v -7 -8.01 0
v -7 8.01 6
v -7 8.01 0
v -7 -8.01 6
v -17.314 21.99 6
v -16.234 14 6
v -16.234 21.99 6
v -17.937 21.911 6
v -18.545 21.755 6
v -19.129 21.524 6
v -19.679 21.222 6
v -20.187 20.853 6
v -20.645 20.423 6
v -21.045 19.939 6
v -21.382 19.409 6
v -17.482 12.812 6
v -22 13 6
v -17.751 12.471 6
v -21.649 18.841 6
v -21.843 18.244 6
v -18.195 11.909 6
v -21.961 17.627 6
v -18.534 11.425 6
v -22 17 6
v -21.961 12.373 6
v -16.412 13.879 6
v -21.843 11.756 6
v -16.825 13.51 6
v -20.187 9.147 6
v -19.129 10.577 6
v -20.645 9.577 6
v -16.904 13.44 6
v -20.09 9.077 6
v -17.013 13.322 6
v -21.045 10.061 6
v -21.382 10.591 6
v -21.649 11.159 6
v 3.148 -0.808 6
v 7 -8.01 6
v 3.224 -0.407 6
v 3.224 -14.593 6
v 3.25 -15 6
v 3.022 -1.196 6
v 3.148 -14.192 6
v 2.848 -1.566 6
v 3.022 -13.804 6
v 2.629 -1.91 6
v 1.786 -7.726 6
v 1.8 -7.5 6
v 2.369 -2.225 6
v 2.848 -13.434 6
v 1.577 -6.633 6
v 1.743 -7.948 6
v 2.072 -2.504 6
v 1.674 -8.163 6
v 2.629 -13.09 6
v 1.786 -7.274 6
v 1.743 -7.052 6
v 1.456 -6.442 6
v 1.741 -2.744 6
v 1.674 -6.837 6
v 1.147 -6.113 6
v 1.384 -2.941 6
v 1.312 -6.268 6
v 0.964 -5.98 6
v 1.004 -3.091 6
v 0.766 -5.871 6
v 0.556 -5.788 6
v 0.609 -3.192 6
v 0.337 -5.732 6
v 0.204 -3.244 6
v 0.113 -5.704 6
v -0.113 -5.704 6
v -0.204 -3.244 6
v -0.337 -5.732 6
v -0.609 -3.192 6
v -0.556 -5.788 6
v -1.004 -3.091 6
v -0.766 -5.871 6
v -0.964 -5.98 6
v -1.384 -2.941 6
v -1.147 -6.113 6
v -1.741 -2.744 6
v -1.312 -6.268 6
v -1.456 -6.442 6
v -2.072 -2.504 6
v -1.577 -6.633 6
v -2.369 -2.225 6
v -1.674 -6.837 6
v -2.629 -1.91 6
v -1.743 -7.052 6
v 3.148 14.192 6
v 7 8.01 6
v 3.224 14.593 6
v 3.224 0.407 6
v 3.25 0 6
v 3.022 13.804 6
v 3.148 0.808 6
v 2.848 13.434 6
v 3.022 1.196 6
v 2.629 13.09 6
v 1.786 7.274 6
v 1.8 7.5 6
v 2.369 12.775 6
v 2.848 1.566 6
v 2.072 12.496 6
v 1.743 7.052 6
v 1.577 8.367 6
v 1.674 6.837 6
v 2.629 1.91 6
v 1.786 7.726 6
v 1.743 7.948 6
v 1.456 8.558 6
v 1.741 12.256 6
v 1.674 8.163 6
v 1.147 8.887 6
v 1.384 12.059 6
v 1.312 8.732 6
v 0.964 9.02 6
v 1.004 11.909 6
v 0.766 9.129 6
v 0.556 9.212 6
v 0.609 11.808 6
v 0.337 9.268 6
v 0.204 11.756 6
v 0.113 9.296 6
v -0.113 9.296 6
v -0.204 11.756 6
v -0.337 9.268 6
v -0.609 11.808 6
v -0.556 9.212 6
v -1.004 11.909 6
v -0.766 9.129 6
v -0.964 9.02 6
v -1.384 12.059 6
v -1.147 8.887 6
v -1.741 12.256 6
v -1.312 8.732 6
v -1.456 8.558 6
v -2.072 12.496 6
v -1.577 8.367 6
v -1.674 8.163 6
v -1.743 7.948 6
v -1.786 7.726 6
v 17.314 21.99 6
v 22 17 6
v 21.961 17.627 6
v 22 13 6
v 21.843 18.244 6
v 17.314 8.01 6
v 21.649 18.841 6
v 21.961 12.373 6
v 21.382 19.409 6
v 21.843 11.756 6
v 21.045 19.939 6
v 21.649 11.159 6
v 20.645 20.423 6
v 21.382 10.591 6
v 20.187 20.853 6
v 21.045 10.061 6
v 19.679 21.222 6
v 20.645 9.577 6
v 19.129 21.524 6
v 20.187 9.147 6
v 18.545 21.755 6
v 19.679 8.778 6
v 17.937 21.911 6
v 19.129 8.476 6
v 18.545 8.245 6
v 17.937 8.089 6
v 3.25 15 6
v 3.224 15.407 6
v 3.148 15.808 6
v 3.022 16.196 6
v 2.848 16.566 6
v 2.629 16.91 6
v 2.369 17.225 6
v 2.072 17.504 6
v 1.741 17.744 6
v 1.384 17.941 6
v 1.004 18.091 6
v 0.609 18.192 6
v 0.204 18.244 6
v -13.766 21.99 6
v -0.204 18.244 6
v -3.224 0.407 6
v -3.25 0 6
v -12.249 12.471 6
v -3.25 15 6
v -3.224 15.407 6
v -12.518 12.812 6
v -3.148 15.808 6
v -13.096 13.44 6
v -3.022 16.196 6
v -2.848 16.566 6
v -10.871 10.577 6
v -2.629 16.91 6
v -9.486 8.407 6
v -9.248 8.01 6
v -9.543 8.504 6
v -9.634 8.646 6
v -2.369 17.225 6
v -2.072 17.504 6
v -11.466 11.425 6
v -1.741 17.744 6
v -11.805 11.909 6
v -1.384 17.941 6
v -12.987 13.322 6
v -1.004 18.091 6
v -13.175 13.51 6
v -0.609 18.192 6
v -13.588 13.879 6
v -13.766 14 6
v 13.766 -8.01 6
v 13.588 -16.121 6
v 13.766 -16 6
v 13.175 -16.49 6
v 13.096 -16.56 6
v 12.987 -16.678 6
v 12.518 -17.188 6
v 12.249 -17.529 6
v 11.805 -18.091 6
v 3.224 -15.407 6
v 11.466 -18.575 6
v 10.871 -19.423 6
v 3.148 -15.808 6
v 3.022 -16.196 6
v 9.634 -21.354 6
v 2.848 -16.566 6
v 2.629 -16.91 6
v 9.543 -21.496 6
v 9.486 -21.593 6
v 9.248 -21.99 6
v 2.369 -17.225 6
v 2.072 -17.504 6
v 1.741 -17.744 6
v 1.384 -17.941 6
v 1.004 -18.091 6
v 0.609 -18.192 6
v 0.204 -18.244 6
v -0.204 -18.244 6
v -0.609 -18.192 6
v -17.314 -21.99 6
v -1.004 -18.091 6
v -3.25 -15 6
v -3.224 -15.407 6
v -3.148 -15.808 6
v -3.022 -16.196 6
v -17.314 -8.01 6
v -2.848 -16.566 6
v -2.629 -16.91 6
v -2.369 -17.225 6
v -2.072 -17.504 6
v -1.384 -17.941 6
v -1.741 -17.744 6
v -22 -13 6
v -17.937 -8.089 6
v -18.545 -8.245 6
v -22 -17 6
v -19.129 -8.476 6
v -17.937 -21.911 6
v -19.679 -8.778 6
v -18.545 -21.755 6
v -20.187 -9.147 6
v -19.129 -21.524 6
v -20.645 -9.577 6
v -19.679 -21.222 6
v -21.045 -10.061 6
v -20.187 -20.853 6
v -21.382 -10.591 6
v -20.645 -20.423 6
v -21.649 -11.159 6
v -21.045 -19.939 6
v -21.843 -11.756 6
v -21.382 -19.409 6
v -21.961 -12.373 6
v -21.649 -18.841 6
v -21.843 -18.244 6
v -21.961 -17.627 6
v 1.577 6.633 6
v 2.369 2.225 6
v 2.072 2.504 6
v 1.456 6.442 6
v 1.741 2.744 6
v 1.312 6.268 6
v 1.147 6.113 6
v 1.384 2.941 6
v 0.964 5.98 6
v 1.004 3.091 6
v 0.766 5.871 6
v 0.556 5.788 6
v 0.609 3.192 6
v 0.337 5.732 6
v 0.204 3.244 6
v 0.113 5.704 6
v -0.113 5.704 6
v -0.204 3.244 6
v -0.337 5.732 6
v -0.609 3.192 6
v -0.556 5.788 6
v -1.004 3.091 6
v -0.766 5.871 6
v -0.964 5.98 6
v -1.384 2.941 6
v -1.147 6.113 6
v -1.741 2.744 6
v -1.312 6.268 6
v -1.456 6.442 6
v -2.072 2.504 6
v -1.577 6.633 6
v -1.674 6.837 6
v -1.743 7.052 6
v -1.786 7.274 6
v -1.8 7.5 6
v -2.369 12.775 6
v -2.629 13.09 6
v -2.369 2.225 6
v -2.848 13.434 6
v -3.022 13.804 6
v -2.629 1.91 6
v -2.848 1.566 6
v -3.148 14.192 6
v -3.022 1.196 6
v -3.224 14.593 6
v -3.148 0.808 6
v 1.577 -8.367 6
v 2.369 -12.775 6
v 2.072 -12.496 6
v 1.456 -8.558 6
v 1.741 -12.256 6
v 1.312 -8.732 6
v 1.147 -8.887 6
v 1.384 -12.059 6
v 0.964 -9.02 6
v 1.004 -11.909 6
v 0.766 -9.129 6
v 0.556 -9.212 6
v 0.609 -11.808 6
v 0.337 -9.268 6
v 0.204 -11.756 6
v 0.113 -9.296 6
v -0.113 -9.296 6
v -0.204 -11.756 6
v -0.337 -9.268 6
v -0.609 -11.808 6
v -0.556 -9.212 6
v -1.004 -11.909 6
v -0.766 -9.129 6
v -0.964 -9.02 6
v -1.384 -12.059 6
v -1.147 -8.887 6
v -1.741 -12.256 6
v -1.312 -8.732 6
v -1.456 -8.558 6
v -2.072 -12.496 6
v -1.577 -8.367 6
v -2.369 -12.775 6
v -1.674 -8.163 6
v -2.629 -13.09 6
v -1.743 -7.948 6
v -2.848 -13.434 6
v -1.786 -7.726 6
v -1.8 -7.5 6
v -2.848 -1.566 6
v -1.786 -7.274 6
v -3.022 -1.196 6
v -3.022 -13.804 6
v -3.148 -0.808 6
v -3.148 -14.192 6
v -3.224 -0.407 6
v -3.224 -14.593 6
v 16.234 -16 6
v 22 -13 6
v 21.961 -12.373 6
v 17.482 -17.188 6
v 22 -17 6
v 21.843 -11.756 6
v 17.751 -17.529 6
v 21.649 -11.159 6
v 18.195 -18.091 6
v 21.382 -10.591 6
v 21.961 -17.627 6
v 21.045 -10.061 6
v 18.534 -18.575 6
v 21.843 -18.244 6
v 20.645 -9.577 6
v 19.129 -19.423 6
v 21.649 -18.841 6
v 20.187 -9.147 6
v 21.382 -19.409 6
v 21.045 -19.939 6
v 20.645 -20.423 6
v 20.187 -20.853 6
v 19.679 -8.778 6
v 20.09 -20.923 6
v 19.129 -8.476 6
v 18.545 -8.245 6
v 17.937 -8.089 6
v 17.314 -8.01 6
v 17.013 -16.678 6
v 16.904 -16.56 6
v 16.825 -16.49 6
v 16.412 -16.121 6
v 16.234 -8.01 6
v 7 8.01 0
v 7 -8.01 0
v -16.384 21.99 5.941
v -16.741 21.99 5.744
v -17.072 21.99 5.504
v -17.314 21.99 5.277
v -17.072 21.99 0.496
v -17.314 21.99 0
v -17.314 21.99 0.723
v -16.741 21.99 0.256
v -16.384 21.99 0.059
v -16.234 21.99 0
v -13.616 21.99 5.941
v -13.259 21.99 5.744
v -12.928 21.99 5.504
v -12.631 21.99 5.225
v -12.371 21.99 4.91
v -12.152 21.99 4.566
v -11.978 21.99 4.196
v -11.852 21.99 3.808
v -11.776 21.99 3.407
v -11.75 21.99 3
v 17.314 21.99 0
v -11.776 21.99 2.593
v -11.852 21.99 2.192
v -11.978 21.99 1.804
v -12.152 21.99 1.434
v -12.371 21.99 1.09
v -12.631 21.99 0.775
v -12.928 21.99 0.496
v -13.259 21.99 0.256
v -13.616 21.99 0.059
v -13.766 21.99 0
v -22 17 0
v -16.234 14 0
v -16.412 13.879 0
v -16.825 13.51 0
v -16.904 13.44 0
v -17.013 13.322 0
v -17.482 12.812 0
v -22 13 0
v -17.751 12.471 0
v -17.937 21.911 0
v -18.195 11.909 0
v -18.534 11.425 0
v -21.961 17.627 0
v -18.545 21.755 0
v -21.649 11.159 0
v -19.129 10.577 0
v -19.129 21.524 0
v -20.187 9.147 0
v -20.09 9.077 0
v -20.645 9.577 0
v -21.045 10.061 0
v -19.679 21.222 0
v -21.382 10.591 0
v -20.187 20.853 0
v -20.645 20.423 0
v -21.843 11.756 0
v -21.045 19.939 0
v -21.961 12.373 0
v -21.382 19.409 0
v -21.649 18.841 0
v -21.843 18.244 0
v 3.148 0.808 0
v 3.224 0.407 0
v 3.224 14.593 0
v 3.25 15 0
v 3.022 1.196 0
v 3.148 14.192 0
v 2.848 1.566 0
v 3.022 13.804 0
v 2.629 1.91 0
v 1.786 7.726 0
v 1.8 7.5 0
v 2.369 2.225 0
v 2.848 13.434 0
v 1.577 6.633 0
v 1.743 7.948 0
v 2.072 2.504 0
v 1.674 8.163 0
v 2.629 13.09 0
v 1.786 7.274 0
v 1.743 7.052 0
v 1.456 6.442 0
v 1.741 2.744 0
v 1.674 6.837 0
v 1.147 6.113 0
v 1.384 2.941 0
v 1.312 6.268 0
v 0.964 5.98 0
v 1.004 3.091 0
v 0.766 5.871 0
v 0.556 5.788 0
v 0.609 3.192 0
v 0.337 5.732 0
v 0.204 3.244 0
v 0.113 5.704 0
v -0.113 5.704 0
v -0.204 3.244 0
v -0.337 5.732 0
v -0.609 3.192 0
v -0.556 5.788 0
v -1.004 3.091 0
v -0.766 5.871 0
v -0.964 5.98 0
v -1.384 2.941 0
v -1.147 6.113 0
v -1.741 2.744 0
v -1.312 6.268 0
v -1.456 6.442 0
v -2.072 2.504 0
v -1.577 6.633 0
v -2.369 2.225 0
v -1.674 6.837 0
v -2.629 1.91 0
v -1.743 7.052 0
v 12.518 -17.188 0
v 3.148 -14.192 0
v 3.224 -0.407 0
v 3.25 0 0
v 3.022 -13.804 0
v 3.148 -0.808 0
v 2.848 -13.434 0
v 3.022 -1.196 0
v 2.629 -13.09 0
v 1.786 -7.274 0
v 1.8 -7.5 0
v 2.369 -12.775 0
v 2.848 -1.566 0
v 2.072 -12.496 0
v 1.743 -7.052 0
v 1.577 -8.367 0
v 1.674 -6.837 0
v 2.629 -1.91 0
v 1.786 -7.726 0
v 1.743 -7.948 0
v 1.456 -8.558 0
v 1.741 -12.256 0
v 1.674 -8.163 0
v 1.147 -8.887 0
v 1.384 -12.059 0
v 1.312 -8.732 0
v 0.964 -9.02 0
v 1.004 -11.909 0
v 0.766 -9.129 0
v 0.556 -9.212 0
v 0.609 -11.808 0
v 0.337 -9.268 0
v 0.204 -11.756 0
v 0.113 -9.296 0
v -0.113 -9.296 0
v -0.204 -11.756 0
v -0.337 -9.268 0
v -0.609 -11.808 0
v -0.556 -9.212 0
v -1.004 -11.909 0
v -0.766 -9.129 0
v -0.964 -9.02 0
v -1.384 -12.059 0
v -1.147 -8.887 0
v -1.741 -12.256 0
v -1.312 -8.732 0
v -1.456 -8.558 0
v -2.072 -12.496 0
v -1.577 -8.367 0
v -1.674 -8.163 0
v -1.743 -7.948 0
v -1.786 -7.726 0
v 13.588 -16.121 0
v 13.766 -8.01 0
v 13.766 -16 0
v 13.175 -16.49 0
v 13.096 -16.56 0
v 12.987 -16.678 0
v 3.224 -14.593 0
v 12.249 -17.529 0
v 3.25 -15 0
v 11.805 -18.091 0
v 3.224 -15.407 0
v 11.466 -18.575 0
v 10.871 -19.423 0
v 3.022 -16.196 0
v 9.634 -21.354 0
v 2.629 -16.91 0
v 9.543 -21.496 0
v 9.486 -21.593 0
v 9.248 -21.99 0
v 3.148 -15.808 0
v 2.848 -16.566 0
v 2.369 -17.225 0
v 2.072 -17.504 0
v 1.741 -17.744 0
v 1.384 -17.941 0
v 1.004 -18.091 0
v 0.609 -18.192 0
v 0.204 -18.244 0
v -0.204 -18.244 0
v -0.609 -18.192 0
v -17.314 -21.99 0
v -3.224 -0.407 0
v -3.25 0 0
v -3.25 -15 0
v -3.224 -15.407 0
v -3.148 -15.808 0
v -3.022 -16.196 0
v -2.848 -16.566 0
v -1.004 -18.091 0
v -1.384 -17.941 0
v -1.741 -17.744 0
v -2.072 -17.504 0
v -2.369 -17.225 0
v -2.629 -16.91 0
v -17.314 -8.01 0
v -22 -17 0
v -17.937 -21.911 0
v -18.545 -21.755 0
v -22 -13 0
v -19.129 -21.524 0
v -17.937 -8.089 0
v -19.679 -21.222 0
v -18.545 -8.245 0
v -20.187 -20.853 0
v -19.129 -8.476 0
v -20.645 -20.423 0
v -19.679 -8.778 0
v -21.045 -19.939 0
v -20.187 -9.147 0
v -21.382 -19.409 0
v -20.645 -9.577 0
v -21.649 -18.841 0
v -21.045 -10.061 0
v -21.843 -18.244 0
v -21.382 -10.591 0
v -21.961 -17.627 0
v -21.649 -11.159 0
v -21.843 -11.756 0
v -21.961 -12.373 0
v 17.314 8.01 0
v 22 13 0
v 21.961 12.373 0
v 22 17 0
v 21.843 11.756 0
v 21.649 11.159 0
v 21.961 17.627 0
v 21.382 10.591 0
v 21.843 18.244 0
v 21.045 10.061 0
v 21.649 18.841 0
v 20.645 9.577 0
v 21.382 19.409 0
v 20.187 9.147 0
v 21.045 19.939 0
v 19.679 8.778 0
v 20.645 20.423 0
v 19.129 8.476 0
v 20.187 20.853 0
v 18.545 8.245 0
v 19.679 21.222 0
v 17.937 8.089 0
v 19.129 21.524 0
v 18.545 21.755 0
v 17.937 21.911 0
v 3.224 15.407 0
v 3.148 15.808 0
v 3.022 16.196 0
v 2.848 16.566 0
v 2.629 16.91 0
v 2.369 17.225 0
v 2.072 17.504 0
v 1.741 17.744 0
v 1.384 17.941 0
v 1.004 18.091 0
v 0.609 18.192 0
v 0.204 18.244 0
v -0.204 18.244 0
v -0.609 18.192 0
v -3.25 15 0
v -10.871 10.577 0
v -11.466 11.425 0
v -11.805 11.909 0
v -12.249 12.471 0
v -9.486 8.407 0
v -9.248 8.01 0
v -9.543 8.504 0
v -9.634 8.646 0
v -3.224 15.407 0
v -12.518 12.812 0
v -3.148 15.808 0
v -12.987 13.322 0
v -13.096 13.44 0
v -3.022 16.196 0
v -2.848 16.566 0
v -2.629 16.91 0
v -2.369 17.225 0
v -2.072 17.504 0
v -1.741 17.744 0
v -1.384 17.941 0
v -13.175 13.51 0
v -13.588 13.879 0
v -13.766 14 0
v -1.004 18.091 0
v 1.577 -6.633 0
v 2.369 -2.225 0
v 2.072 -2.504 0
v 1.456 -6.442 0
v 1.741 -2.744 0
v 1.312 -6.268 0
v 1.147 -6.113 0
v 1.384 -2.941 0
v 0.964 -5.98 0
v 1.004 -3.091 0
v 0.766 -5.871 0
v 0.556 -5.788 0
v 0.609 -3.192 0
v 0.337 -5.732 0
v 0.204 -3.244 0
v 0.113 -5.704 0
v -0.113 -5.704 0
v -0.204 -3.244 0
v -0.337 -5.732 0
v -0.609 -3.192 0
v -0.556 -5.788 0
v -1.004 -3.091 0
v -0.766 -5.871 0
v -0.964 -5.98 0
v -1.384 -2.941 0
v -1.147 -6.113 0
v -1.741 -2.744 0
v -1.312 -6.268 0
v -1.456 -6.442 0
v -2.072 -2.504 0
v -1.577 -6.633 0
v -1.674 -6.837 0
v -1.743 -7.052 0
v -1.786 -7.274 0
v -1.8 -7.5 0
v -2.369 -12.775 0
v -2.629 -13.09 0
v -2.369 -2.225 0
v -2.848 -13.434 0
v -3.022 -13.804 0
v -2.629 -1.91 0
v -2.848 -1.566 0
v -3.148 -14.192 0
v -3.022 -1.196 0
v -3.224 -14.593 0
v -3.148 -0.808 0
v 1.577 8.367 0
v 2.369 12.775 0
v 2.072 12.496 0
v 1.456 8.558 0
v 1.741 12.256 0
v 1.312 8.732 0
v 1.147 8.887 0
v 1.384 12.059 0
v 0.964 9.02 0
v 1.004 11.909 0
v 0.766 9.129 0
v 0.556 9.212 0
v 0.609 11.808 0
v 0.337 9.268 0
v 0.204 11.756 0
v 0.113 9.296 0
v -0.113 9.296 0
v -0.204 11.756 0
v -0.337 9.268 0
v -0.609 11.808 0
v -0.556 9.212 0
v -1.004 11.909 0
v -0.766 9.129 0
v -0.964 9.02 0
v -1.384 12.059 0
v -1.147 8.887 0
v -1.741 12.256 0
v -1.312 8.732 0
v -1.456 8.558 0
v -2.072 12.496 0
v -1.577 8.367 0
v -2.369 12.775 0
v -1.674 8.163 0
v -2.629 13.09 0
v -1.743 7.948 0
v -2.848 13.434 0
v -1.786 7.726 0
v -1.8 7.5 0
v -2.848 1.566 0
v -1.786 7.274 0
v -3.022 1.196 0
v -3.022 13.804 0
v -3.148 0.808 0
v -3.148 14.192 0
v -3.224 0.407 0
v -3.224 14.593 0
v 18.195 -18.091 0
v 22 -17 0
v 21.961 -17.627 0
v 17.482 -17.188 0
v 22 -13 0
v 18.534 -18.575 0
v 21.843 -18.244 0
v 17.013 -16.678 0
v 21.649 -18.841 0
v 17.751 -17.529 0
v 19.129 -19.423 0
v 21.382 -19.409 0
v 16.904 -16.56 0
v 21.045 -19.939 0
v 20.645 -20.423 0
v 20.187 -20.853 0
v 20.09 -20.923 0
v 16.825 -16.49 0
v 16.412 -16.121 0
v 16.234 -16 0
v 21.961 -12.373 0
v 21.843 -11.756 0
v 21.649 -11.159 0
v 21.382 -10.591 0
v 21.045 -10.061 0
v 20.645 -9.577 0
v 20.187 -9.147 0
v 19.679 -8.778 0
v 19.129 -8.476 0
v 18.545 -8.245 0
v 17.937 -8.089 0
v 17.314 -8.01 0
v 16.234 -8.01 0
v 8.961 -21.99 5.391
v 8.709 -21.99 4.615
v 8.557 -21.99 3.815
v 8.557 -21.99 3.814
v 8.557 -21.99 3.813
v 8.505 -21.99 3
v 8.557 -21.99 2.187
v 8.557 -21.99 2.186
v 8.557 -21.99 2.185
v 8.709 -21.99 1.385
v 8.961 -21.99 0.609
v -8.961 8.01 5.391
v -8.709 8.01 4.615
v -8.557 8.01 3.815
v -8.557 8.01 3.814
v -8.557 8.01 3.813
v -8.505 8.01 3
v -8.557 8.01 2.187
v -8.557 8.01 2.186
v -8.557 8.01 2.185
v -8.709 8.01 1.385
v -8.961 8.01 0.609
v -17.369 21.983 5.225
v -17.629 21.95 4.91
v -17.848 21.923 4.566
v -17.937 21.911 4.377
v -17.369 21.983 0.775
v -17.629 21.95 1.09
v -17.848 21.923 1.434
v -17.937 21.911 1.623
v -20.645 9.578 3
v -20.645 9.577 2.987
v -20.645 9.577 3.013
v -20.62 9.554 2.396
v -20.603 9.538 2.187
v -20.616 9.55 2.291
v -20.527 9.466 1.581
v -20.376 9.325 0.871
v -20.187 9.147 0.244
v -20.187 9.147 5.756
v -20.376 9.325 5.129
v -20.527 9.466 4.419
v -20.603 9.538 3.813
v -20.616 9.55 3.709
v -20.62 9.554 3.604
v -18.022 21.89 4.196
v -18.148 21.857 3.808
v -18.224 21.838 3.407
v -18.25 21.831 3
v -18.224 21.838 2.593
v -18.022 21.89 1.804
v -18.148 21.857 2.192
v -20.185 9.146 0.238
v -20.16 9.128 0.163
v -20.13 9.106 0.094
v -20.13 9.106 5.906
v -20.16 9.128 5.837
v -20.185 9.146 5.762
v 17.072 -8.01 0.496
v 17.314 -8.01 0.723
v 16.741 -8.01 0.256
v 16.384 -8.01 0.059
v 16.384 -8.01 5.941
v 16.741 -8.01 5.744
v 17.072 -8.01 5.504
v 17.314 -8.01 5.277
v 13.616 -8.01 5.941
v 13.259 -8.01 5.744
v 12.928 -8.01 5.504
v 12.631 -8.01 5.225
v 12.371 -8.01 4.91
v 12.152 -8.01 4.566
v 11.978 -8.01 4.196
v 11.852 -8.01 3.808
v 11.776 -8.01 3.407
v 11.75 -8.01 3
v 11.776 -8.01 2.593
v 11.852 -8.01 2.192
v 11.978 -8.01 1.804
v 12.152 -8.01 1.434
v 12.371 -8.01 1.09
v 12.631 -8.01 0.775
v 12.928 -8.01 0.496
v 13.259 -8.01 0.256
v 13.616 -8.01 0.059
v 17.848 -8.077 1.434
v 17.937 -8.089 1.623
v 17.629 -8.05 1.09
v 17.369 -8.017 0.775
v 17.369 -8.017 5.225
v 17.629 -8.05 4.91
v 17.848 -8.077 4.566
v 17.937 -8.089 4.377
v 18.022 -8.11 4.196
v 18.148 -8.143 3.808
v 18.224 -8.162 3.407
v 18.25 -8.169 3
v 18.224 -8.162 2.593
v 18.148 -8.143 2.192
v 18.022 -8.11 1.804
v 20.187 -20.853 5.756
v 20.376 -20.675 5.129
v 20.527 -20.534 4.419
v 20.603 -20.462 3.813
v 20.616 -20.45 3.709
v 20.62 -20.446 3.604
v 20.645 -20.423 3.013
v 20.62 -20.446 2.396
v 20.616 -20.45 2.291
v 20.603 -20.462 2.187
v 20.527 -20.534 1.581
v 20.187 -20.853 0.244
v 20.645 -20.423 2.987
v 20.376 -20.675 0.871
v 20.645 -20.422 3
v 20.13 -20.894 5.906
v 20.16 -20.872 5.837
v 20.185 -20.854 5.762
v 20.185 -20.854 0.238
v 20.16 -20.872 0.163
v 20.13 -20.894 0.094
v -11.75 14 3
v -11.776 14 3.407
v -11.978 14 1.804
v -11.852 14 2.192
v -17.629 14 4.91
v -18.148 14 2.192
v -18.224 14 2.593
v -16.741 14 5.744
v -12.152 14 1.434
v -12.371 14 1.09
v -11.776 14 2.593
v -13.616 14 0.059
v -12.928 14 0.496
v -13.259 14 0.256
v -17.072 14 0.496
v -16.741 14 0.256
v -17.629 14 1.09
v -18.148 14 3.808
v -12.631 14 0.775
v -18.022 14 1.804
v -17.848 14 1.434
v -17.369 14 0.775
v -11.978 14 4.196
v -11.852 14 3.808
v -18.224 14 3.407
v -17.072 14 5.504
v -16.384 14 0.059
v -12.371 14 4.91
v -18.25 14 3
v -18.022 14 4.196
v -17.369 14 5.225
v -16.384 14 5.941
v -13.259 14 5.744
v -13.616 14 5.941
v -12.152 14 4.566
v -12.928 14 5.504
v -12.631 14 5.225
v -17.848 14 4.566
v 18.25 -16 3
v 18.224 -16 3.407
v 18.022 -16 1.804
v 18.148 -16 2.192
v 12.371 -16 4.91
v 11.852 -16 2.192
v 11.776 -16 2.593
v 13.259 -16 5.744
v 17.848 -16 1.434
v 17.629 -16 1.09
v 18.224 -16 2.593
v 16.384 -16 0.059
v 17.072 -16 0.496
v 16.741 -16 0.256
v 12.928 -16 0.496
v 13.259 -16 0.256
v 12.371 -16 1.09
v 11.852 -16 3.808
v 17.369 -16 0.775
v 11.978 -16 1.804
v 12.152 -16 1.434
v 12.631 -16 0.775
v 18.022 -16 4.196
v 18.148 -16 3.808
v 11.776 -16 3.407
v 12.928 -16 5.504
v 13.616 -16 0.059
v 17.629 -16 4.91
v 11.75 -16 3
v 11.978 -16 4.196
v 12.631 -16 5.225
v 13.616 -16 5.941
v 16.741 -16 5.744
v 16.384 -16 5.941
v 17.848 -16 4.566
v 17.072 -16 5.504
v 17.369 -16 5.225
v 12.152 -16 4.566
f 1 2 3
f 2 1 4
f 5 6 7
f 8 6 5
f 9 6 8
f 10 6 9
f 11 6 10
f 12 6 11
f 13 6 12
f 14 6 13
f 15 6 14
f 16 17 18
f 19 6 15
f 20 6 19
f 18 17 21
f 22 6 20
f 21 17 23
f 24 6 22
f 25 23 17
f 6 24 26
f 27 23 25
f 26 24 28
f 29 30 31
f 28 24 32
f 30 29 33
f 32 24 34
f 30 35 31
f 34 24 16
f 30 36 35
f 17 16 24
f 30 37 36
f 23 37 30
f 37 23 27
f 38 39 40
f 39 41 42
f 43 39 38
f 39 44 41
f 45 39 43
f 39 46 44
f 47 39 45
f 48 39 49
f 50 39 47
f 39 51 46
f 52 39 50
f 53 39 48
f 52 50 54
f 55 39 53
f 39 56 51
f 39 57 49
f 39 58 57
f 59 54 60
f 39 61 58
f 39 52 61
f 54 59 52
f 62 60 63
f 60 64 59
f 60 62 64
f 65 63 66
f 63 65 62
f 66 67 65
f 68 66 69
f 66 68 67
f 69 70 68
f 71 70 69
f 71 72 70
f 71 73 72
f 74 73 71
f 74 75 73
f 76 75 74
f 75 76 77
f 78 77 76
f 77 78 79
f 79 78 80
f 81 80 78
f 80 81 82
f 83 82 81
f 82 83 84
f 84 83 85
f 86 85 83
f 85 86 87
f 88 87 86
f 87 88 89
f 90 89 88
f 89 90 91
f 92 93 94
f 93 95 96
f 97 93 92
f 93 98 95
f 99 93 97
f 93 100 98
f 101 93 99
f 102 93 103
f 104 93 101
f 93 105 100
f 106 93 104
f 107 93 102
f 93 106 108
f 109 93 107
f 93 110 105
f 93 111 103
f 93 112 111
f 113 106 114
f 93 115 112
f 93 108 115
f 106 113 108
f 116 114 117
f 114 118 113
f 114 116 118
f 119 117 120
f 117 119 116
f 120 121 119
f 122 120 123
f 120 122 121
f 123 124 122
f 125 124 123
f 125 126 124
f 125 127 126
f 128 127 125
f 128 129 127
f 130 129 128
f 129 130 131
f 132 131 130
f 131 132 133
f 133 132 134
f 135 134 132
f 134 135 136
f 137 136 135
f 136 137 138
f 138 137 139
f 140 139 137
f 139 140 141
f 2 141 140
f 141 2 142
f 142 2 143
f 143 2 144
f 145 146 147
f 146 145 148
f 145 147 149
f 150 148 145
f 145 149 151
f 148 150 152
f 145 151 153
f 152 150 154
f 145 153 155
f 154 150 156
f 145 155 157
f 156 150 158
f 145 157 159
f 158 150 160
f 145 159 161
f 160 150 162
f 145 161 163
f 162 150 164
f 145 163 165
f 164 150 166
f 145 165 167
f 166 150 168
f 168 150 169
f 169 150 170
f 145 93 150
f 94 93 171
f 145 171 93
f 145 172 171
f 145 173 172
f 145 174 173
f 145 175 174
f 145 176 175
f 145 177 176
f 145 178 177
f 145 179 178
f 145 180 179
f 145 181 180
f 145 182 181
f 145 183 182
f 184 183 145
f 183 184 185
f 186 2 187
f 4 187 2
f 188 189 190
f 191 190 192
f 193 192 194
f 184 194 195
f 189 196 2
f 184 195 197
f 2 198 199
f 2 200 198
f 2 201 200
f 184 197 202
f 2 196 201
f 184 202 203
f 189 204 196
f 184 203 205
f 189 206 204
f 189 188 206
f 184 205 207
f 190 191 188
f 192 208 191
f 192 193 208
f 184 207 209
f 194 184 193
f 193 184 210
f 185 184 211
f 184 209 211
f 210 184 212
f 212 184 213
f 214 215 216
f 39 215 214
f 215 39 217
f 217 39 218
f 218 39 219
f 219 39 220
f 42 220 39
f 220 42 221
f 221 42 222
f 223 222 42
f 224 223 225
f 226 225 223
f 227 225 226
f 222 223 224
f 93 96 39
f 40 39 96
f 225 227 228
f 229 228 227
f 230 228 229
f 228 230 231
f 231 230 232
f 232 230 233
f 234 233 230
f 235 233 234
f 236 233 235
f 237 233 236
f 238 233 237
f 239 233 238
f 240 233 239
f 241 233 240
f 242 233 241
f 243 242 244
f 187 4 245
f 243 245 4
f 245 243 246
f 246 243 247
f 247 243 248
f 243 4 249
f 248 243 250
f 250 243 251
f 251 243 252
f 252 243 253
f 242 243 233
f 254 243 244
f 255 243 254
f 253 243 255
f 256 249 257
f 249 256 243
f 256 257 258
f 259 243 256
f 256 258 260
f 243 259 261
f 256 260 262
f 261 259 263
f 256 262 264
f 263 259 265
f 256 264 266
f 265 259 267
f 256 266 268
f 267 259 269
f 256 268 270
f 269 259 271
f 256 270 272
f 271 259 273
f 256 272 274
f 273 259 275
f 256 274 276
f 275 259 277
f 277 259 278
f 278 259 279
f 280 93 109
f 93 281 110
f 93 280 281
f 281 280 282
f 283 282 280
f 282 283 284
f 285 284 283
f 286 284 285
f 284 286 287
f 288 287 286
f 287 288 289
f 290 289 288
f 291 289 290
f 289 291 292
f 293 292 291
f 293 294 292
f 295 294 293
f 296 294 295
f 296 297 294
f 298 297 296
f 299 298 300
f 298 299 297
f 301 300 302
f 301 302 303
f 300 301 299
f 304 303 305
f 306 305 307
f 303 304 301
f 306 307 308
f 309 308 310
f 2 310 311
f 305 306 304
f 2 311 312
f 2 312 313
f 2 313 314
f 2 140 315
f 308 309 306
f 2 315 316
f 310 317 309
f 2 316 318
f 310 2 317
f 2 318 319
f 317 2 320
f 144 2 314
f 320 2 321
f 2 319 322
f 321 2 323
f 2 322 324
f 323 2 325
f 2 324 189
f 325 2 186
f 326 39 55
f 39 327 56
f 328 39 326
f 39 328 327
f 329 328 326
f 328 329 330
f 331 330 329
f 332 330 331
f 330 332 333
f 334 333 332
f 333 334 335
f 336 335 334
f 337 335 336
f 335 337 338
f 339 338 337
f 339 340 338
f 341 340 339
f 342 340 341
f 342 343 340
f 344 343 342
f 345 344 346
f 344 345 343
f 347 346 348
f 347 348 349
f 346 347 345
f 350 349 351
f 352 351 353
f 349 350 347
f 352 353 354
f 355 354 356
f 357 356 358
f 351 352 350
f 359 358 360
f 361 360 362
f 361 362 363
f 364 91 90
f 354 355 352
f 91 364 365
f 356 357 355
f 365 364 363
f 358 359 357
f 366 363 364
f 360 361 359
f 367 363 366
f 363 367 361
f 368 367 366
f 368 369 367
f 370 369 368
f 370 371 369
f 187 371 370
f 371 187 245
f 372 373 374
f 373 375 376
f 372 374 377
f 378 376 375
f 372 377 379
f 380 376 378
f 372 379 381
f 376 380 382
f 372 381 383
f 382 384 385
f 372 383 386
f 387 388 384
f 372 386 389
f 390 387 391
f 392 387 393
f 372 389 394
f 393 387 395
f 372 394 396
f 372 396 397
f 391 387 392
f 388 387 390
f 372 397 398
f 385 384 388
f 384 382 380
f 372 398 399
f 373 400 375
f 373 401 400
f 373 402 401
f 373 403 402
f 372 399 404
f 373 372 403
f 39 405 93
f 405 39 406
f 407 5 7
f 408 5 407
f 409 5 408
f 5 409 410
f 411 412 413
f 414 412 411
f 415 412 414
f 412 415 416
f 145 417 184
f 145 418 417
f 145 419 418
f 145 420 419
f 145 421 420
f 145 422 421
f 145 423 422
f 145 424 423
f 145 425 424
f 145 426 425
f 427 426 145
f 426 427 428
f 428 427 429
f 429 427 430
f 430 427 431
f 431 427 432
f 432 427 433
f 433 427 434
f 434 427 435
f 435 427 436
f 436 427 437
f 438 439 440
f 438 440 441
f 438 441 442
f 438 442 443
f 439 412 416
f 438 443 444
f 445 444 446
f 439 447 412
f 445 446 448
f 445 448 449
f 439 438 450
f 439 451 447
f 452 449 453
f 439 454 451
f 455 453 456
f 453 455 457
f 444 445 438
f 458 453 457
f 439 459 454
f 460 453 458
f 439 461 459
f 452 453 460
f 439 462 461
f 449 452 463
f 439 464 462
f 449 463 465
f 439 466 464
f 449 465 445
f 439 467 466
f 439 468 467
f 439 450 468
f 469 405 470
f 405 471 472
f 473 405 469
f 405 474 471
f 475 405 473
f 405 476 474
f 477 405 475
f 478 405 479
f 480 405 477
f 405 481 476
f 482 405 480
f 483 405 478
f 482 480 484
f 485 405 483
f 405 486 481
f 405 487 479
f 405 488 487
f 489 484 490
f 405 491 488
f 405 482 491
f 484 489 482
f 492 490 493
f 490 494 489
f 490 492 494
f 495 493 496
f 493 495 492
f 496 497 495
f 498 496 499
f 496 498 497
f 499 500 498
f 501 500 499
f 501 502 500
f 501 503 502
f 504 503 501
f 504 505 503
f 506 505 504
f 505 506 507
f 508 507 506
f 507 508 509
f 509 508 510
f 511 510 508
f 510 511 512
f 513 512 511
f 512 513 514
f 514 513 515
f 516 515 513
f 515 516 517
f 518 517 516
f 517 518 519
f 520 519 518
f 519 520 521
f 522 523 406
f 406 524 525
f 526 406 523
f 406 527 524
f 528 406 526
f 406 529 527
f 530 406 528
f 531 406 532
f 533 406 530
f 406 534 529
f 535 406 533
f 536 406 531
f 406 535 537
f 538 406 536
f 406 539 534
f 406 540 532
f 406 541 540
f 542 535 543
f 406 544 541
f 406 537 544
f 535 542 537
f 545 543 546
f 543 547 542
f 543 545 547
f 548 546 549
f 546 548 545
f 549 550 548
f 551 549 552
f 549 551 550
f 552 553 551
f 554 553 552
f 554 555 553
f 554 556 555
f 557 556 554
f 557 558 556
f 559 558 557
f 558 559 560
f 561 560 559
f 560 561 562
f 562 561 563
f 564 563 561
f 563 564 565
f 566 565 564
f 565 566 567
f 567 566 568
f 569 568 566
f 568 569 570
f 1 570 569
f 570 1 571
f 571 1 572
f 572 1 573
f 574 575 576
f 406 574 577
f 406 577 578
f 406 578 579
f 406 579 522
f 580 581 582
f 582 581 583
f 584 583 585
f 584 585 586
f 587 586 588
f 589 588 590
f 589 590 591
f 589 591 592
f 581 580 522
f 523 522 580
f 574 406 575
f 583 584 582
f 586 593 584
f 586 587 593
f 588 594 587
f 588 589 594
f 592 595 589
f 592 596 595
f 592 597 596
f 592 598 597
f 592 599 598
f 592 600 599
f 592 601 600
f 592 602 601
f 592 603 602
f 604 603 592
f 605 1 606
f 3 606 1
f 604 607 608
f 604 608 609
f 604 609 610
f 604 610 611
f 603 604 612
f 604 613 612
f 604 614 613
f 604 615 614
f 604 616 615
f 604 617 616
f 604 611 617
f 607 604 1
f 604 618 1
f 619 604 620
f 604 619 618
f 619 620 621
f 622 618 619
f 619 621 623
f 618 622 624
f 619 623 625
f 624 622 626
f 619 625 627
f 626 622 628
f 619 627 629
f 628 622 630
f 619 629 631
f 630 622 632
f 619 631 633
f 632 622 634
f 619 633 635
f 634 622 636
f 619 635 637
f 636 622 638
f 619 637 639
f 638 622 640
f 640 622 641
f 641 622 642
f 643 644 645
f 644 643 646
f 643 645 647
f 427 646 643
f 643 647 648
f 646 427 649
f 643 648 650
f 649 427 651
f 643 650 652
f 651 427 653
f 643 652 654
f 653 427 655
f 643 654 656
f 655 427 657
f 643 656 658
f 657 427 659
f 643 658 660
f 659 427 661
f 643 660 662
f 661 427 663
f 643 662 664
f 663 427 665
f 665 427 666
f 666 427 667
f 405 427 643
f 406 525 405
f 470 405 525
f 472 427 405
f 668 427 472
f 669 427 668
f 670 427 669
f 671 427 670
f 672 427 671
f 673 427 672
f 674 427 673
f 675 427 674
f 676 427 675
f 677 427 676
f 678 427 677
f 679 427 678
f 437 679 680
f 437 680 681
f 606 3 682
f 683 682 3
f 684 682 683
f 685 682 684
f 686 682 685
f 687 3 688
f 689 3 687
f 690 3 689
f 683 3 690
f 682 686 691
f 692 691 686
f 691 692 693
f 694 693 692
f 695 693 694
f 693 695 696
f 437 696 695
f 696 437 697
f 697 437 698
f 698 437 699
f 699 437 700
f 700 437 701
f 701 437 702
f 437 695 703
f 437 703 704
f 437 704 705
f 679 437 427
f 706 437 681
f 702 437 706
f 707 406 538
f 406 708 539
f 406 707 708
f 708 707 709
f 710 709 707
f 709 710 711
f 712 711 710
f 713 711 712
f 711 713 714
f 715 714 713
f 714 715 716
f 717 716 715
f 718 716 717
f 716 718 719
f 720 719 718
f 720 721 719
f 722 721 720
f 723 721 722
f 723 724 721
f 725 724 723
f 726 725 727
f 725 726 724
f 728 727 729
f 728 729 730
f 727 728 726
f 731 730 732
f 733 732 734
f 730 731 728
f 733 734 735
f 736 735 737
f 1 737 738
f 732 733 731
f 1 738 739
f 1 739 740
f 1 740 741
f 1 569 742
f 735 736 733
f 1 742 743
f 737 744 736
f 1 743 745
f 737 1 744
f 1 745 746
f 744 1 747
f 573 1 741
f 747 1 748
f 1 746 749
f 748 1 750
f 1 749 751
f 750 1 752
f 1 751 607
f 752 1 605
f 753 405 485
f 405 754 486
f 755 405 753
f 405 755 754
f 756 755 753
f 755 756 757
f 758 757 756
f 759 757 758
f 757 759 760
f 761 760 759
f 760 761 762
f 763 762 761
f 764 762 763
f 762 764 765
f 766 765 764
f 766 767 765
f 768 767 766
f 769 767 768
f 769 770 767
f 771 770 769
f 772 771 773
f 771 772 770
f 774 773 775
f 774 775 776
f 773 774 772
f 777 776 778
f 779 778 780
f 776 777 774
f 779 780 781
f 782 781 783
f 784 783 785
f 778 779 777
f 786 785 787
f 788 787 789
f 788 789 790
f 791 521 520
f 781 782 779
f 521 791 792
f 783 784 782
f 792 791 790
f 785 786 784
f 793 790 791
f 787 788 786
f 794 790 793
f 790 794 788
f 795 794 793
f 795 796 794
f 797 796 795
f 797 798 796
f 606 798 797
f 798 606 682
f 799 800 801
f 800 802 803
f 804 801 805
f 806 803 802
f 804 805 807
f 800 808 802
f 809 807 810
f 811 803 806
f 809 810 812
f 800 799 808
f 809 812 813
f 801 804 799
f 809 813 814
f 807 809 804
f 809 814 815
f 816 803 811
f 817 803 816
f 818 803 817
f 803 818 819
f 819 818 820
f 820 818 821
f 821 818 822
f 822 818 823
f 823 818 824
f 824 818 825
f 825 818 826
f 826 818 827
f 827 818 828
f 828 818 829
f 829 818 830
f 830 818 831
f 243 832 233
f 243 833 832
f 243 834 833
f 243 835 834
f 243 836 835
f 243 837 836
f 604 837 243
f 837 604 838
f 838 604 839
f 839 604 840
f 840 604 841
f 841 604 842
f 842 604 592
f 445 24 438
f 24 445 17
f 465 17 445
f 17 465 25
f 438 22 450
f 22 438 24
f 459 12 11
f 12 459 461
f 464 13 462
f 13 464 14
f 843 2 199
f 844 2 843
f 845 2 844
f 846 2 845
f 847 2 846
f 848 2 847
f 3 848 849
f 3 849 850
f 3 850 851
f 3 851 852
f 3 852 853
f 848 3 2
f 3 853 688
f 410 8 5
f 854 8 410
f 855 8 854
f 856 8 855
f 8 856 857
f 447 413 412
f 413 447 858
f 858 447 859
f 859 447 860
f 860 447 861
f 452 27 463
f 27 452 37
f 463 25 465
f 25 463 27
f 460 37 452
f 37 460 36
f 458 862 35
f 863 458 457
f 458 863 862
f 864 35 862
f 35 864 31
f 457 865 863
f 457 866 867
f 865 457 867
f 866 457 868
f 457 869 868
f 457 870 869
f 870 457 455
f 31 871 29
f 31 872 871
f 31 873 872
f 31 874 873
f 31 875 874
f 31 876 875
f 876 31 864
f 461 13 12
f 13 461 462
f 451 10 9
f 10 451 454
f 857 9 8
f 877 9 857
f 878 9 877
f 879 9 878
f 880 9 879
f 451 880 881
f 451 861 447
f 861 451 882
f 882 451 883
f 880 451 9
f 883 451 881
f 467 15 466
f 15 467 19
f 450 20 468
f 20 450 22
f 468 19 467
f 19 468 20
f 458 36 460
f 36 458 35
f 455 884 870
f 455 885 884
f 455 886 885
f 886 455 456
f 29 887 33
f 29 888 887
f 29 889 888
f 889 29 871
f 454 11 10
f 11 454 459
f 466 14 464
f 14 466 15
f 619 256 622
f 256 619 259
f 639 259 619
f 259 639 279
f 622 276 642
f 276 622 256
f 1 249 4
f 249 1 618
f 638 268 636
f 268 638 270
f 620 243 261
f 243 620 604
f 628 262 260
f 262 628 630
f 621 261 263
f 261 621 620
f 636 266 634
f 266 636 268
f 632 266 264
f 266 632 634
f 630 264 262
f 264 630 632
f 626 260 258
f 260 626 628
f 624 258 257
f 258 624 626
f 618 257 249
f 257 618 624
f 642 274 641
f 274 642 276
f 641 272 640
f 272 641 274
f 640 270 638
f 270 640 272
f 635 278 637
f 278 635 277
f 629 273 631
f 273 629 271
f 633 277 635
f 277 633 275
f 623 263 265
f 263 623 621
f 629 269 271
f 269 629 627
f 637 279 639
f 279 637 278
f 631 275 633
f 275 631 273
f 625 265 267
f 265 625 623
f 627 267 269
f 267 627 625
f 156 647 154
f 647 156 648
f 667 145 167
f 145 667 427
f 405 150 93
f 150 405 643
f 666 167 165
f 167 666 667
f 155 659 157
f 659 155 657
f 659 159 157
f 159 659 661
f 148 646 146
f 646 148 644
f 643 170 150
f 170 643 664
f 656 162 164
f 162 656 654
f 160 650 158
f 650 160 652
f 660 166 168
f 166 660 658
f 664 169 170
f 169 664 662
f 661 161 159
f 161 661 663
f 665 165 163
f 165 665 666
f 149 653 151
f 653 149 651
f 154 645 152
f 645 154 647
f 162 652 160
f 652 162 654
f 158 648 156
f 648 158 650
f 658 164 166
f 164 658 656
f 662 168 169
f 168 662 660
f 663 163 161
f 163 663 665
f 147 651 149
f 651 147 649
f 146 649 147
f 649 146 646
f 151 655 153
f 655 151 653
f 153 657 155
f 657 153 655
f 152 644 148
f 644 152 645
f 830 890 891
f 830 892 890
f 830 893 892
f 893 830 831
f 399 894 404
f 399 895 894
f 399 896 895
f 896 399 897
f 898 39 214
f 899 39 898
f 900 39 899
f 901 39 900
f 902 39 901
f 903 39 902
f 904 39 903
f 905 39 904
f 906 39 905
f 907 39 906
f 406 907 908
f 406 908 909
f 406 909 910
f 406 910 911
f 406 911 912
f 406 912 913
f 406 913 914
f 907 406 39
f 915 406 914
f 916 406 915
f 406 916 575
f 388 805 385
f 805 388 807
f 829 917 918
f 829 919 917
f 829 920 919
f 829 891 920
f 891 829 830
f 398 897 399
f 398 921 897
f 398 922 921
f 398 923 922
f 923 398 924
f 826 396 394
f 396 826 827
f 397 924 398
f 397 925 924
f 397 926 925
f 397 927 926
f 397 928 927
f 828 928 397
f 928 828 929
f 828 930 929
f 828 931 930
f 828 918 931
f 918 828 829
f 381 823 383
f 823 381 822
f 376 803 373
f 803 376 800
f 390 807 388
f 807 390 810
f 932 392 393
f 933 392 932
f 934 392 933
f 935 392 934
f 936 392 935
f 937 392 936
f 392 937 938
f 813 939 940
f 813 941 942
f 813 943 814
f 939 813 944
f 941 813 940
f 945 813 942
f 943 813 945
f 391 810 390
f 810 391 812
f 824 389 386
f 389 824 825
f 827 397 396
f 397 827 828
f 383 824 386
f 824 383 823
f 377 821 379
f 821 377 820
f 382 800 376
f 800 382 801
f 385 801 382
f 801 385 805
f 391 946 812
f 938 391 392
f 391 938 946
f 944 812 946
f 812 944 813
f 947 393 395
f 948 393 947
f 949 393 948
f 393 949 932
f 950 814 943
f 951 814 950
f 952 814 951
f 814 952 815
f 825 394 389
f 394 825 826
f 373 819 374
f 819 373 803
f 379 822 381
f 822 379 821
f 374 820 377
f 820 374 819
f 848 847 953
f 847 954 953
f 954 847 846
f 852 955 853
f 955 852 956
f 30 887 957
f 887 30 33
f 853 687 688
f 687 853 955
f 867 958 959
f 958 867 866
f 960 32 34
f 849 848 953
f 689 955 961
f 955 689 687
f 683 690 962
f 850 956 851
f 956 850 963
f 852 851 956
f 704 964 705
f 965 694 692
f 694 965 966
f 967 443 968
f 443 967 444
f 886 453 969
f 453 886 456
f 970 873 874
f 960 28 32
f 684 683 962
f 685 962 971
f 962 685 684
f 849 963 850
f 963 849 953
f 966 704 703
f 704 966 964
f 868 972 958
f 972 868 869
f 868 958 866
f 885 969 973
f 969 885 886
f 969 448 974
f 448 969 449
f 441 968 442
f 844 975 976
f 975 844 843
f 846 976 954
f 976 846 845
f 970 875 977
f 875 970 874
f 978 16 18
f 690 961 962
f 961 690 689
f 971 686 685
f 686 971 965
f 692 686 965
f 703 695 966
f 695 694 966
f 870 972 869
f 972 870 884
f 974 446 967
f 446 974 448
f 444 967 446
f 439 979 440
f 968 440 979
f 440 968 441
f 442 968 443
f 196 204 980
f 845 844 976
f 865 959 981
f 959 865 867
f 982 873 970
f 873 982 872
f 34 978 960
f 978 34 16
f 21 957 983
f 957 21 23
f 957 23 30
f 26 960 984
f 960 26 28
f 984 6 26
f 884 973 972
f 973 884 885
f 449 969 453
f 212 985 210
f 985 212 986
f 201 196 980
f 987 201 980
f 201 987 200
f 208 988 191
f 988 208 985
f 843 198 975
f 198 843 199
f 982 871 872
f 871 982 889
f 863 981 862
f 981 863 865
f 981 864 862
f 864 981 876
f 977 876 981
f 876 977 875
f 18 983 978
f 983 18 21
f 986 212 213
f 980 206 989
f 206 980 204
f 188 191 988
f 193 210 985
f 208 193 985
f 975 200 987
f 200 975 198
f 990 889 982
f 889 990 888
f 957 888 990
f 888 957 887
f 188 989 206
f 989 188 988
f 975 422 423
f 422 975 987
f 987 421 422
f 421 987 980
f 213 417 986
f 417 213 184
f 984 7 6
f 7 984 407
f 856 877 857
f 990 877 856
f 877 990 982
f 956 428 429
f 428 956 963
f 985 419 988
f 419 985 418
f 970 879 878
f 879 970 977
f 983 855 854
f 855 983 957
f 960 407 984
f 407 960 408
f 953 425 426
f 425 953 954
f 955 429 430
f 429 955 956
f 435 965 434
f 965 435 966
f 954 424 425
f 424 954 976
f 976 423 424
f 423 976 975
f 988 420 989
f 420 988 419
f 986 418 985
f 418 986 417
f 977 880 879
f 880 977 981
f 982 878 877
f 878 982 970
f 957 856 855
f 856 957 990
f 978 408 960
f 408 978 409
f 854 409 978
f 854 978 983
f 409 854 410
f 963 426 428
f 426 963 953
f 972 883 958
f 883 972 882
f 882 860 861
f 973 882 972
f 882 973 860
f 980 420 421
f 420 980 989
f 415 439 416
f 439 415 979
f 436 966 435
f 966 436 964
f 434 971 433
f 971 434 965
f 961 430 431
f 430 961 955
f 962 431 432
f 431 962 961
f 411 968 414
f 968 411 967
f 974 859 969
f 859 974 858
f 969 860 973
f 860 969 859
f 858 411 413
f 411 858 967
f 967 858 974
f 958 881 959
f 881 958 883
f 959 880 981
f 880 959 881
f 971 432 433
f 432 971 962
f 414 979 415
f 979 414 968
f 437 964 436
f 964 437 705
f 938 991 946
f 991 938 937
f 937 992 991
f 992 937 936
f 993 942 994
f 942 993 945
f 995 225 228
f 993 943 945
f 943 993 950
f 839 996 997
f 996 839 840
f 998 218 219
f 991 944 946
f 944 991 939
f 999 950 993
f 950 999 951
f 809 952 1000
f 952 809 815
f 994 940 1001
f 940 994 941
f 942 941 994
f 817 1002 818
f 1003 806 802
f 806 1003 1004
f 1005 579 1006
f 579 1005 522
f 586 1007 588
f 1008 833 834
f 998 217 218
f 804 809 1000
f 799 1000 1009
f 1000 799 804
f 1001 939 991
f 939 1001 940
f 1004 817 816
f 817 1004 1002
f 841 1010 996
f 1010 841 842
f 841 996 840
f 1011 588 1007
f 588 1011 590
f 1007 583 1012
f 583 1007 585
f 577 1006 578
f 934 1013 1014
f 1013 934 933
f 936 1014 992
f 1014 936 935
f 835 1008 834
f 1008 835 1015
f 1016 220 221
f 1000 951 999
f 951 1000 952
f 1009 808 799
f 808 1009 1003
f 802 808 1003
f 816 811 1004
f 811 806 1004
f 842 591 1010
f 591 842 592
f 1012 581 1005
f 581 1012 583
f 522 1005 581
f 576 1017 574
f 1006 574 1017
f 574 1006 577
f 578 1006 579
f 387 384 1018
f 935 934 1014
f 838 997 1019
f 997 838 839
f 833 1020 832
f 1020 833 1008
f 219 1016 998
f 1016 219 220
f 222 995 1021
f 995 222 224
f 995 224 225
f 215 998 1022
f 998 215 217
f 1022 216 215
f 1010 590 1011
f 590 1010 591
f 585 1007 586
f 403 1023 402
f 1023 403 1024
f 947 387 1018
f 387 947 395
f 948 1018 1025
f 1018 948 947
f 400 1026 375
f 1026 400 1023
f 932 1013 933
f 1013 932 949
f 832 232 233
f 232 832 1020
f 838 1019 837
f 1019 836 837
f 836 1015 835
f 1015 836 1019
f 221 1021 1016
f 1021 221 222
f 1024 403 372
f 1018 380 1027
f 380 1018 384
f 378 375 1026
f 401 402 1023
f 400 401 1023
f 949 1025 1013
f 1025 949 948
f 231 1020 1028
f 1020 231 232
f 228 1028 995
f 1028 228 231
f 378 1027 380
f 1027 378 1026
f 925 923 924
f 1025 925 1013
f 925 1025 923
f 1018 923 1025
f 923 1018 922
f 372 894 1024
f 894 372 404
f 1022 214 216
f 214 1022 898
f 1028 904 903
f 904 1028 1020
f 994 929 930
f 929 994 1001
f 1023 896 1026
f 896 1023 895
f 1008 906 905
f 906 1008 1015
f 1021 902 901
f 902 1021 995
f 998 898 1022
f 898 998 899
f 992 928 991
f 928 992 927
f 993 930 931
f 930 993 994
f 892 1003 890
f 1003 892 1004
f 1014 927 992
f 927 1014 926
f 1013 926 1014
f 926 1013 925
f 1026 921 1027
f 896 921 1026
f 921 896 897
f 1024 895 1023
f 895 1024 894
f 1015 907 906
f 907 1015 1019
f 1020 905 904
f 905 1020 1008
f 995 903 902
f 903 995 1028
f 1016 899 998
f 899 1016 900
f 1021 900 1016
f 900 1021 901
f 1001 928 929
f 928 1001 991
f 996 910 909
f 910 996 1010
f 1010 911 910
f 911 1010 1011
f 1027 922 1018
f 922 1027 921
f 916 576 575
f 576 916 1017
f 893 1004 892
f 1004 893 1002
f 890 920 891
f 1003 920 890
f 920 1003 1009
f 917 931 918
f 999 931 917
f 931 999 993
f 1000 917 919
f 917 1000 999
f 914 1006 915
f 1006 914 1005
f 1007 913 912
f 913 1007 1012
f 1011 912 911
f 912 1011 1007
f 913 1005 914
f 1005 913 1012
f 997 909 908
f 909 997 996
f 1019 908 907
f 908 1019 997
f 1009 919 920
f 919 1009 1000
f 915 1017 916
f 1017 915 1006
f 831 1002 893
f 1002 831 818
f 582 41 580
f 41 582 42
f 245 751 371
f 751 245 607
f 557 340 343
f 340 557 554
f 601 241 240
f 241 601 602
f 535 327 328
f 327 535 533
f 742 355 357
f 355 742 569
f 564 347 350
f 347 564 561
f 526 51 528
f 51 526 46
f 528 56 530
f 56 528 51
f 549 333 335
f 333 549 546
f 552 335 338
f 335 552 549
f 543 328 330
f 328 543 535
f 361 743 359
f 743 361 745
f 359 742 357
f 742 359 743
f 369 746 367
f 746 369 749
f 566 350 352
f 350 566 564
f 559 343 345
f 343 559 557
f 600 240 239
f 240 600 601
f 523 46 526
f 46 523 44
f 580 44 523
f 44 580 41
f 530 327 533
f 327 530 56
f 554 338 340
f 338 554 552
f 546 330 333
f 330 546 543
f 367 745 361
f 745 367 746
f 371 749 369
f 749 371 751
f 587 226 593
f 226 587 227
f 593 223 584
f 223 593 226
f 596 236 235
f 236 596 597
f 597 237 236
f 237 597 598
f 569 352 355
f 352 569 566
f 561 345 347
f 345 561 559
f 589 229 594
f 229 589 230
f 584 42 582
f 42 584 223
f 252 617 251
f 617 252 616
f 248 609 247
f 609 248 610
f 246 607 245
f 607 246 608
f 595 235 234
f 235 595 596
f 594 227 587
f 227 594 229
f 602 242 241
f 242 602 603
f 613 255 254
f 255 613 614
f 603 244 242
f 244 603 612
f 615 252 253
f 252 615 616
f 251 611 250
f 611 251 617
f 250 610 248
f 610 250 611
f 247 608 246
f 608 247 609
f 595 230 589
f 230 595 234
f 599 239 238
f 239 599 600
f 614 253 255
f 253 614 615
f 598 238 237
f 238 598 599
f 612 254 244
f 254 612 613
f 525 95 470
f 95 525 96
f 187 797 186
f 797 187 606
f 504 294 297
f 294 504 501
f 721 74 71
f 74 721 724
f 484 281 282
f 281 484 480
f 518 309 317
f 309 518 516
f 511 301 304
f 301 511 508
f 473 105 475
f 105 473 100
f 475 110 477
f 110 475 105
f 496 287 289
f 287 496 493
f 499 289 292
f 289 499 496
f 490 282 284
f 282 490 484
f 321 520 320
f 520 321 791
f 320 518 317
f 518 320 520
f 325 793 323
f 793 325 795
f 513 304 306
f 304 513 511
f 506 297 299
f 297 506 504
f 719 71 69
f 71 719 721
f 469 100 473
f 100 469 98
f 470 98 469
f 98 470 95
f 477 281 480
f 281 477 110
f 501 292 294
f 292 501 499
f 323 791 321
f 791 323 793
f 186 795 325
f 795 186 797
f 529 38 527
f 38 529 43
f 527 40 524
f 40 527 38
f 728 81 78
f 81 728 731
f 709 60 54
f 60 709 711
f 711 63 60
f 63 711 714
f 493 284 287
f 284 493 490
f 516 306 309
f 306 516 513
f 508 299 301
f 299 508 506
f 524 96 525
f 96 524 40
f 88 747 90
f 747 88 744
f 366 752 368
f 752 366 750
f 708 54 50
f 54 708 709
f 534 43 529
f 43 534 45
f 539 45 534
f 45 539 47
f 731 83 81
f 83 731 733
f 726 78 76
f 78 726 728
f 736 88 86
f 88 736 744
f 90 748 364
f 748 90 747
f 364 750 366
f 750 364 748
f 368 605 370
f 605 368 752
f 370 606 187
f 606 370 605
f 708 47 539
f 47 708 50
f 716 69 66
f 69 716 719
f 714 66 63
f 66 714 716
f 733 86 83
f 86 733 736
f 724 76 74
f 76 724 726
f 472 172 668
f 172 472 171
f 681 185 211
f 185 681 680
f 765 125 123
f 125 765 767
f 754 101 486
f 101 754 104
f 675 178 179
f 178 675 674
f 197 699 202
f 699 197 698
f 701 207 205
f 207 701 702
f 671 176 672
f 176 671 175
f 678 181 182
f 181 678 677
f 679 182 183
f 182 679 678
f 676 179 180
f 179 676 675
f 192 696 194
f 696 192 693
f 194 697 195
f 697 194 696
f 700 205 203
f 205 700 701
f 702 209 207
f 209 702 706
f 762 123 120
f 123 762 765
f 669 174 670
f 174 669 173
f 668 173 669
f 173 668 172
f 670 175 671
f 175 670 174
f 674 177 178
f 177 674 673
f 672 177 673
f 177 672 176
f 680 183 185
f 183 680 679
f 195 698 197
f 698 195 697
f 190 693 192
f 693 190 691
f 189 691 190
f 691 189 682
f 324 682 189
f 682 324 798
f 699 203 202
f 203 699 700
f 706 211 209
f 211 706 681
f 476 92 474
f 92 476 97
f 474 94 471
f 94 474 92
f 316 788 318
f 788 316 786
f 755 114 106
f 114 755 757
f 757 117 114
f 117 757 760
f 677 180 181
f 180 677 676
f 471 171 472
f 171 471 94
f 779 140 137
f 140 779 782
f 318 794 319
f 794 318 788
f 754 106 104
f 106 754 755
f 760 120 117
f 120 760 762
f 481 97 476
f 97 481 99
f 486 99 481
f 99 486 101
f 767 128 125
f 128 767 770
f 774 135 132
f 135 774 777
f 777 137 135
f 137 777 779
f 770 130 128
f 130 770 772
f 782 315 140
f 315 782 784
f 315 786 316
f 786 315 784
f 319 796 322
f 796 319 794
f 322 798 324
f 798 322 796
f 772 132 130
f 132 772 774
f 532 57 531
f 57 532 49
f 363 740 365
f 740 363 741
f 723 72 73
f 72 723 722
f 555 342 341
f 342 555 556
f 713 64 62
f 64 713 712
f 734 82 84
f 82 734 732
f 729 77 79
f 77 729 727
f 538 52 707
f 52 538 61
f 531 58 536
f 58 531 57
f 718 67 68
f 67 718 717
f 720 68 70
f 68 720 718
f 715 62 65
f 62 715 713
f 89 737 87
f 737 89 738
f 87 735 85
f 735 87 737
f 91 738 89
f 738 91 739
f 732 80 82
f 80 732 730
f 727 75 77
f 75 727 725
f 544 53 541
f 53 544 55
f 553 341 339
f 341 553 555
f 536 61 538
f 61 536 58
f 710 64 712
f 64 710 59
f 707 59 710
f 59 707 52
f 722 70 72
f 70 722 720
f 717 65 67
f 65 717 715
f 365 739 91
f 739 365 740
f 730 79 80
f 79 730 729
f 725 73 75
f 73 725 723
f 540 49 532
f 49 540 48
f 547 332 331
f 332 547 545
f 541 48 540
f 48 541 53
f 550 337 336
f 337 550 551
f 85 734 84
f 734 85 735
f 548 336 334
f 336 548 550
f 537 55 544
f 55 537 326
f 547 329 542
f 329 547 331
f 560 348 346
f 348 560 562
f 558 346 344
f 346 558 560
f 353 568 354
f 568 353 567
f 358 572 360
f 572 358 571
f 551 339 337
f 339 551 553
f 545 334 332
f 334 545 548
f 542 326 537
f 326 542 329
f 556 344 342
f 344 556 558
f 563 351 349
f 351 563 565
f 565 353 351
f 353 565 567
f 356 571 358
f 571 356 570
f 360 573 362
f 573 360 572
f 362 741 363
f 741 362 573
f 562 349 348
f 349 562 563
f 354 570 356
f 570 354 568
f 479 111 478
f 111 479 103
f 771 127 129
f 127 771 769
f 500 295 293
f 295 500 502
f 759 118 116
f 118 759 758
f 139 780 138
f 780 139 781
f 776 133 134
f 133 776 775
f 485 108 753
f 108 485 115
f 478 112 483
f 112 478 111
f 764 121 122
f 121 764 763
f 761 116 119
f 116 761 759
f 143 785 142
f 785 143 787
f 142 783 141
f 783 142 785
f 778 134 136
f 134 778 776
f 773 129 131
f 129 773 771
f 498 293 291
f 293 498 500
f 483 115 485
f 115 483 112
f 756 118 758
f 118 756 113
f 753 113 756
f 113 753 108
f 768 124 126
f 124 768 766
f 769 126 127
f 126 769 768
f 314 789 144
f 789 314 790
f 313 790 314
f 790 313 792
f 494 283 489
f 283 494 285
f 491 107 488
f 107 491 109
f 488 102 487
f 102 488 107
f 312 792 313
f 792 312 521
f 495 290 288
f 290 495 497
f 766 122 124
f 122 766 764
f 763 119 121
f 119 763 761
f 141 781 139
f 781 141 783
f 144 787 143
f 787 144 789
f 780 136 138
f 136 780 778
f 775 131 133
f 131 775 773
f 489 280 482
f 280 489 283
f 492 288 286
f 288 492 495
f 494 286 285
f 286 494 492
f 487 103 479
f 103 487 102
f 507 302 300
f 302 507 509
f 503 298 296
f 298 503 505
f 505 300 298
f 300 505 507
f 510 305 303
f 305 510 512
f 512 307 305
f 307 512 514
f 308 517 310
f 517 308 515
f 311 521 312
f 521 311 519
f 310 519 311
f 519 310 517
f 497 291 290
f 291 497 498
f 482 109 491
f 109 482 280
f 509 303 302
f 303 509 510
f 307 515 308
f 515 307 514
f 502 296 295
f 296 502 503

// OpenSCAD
$fn = 50;


difference() {
	union() {
		hull() {
			translate(v = [-2.0000000000, 17.0000000000, 0]) {
				cylinder(h = 6, r = 5);
			}
			translate(v = [2.0000000000, 17.0000000000, 0]) {
				cylinder(h = 6, r = 5);
			}
			translate(v = [-2.0000000000, -17.0000000000, 0]) {
				cylinder(h = 6, r = 5);
			}
			translate(v = [2.0000000000, -17.0000000000, 0]) {
				cylinder(h = 6, r = 5);
			}
		}
		translate(v = [-7.5000000000, 15.0000000000, 0]) {
			hull() {
				translate(v = [-9.5000000000, 2.0000000000, 0]) {
					cylinder(h = 6, r = 5);
				}
				translate(v = [9.5000000000, 2.0000000000, 0]) {
					cylinder(h = 6, r = 5);
				}
				translate(v = [-9.5000000000, -2.0000000000, 0]) {
					cylinder(h = 6, r = 5);
				}
				translate(v = [9.5000000000, -2.0000000000, 0]) {
					cylinder(h = 6, r = 5);
				}
			}
		}
		translate(v = [-7.5000000000, -15.0000000000, 0]) {
			hull() {
				translate(v = [-9.5000000000, 2.0000000000, 0]) {
					cylinder(h = 6, r = 5);
				}
				translate(v = [9.5000000000, 2.0000000000, 0]) {
					cylinder(h = 6, r = 5);
				}
				translate(v = [-9.5000000000, -2.0000000000, 0]) {
					cylinder(h = 6, r = 5);
				}
				translate(v = [9.5000000000, -2.0000000000, 0]) {
					cylinder(h = 6, r = 5);
				}
			}
		}
		translate(v = [7.5000000000, 15.0000000000, 0]) {
			hull() {
				translate(v = [-9.5000000000, 2.0000000000, 0]) {
					cylinder(h = 6, r = 5);
				}
				translate(v = [9.5000000000, 2.0000000000, 0]) {
					cylinder(h = 6, r = 5);
				}
				translate(v = [-9.5000000000, -2.0000000000, 0]) {
					cylinder(h = 6, r = 5);
				}
				translate(v = [9.5000000000, -2.0000000000, 0]) {
					cylinder(h = 6, r = 5);
				}
			}
		}
		translate(v = [7.5000000000, -15.0000000000, 0]) {
			hull() {
				translate(v = [-9.5000000000, 2.0000000000, 0]) {
					cylinder(h = 6, r = 5);
				}
				translate(v = [9.5000000000, 2.0000000000, 0]) {
					cylinder(h = 6, r = 5);
				}
				translate(v = [-9.5000000000, -2.0000000000, 0]) {
					cylinder(h = 6, r = 5);
				}
				translate(v = [9.5000000000, -2.0000000000, 0]) {
					cylinder(h = 6, r = 5);
				}
			}
		}
	}
	union() {
		translate(v = [-15.0000000000, 8.0000000000, 3.0000000000]) {
			rotate(a = [90, 0, 0]) {
				difference() {
					union() {
						#translate(v = [0, 0, -14.0000000000]) {
							cylinder(h = 14, r = 2.2500000000);
						}
						#translate(v = [0, 0, -6]) {
							cylinder(h = 6, r1 = 3.2500000000, r2 = 6.5000000000);
						}
						#translate(v = [0, 0, -14.0000000000]) {
							cylinder(h = 14, r = 3.2500000000);
						}
						#translate(v = [0, 0, -14.0000000000]) {
							cylinder(h = 14, r = 2.2500000000);
						}
					}
					union();
				}
			}
		}
		translate(v = [15.0000000000, -22.0000000000, 3.0000000000]) {
			rotate(a = [90, 0, 0]) {
				difference() {
					union() {
						#translate(v = [0, 0, -14.0000000000]) {
							cylinder(h = 14, r = 2.2500000000);
						}
						#translate(v = [0, 0, -6]) {
							cylinder(h = 6, r1 = 3.2500000000, r2 = 6.5000000000);
						}
						#translate(v = [0, 0, -14.0000000000]) {
							cylinder(h = 14, r = 3.2500000000);
						}
						#translate(v = [0, 0, -14.0000000000]) {
							cylinder(h = 14, r = 2.2500000000);
						}
					}
					union();
				}
			}
		}
		translate(v = [0.0000000000, -15.0000000000, 0]) {
			translate(v = [0, 0, -100]) {
				cylinder(h = 200, r = 3.2500000000);
			}
		}
		translate(v = [0, 0, -100]) {
			cylinder(h = 200, r = 3.2500000000);
		}
		translate(v = [0.0000000000, 15.0000000000, 0]) {
			translate(v = [0, 0, -100]) {
				cylinder(h = 200, r = 3.2500000000);
			}
		}
		translate(v = [0.0000000000, -15.0000000000, 0]) {
			translate(v = [0, 0, -100]) {
				cylinder(h = 200, r = 1.8000000000);
			}
		}
		translate(v = [0.0000000000, -7.5000000000, 0]) {
			translate(v = [0, 0, -100]) {
				cylinder(h = 200, r = 1.8000000000);
			}
		}
		translate(v = [0, 0, -100]) {
			cylinder(h = 200, r = 1.8000000000);
		}
		translate(v = [0.0000000000, 7.5000000000, 0]) {
			translate(v = [0, 0, -100]) {
				cylinder(h = 200, r = 1.8000000000);
			}
		}
		translate(v = [0.0000000000, 15.0000000000, 0]) {
			translate(v = [0, 0, -100]) {
				cylinder(h = 200, r = 1.8000000000);
			}
		}
	}
}
